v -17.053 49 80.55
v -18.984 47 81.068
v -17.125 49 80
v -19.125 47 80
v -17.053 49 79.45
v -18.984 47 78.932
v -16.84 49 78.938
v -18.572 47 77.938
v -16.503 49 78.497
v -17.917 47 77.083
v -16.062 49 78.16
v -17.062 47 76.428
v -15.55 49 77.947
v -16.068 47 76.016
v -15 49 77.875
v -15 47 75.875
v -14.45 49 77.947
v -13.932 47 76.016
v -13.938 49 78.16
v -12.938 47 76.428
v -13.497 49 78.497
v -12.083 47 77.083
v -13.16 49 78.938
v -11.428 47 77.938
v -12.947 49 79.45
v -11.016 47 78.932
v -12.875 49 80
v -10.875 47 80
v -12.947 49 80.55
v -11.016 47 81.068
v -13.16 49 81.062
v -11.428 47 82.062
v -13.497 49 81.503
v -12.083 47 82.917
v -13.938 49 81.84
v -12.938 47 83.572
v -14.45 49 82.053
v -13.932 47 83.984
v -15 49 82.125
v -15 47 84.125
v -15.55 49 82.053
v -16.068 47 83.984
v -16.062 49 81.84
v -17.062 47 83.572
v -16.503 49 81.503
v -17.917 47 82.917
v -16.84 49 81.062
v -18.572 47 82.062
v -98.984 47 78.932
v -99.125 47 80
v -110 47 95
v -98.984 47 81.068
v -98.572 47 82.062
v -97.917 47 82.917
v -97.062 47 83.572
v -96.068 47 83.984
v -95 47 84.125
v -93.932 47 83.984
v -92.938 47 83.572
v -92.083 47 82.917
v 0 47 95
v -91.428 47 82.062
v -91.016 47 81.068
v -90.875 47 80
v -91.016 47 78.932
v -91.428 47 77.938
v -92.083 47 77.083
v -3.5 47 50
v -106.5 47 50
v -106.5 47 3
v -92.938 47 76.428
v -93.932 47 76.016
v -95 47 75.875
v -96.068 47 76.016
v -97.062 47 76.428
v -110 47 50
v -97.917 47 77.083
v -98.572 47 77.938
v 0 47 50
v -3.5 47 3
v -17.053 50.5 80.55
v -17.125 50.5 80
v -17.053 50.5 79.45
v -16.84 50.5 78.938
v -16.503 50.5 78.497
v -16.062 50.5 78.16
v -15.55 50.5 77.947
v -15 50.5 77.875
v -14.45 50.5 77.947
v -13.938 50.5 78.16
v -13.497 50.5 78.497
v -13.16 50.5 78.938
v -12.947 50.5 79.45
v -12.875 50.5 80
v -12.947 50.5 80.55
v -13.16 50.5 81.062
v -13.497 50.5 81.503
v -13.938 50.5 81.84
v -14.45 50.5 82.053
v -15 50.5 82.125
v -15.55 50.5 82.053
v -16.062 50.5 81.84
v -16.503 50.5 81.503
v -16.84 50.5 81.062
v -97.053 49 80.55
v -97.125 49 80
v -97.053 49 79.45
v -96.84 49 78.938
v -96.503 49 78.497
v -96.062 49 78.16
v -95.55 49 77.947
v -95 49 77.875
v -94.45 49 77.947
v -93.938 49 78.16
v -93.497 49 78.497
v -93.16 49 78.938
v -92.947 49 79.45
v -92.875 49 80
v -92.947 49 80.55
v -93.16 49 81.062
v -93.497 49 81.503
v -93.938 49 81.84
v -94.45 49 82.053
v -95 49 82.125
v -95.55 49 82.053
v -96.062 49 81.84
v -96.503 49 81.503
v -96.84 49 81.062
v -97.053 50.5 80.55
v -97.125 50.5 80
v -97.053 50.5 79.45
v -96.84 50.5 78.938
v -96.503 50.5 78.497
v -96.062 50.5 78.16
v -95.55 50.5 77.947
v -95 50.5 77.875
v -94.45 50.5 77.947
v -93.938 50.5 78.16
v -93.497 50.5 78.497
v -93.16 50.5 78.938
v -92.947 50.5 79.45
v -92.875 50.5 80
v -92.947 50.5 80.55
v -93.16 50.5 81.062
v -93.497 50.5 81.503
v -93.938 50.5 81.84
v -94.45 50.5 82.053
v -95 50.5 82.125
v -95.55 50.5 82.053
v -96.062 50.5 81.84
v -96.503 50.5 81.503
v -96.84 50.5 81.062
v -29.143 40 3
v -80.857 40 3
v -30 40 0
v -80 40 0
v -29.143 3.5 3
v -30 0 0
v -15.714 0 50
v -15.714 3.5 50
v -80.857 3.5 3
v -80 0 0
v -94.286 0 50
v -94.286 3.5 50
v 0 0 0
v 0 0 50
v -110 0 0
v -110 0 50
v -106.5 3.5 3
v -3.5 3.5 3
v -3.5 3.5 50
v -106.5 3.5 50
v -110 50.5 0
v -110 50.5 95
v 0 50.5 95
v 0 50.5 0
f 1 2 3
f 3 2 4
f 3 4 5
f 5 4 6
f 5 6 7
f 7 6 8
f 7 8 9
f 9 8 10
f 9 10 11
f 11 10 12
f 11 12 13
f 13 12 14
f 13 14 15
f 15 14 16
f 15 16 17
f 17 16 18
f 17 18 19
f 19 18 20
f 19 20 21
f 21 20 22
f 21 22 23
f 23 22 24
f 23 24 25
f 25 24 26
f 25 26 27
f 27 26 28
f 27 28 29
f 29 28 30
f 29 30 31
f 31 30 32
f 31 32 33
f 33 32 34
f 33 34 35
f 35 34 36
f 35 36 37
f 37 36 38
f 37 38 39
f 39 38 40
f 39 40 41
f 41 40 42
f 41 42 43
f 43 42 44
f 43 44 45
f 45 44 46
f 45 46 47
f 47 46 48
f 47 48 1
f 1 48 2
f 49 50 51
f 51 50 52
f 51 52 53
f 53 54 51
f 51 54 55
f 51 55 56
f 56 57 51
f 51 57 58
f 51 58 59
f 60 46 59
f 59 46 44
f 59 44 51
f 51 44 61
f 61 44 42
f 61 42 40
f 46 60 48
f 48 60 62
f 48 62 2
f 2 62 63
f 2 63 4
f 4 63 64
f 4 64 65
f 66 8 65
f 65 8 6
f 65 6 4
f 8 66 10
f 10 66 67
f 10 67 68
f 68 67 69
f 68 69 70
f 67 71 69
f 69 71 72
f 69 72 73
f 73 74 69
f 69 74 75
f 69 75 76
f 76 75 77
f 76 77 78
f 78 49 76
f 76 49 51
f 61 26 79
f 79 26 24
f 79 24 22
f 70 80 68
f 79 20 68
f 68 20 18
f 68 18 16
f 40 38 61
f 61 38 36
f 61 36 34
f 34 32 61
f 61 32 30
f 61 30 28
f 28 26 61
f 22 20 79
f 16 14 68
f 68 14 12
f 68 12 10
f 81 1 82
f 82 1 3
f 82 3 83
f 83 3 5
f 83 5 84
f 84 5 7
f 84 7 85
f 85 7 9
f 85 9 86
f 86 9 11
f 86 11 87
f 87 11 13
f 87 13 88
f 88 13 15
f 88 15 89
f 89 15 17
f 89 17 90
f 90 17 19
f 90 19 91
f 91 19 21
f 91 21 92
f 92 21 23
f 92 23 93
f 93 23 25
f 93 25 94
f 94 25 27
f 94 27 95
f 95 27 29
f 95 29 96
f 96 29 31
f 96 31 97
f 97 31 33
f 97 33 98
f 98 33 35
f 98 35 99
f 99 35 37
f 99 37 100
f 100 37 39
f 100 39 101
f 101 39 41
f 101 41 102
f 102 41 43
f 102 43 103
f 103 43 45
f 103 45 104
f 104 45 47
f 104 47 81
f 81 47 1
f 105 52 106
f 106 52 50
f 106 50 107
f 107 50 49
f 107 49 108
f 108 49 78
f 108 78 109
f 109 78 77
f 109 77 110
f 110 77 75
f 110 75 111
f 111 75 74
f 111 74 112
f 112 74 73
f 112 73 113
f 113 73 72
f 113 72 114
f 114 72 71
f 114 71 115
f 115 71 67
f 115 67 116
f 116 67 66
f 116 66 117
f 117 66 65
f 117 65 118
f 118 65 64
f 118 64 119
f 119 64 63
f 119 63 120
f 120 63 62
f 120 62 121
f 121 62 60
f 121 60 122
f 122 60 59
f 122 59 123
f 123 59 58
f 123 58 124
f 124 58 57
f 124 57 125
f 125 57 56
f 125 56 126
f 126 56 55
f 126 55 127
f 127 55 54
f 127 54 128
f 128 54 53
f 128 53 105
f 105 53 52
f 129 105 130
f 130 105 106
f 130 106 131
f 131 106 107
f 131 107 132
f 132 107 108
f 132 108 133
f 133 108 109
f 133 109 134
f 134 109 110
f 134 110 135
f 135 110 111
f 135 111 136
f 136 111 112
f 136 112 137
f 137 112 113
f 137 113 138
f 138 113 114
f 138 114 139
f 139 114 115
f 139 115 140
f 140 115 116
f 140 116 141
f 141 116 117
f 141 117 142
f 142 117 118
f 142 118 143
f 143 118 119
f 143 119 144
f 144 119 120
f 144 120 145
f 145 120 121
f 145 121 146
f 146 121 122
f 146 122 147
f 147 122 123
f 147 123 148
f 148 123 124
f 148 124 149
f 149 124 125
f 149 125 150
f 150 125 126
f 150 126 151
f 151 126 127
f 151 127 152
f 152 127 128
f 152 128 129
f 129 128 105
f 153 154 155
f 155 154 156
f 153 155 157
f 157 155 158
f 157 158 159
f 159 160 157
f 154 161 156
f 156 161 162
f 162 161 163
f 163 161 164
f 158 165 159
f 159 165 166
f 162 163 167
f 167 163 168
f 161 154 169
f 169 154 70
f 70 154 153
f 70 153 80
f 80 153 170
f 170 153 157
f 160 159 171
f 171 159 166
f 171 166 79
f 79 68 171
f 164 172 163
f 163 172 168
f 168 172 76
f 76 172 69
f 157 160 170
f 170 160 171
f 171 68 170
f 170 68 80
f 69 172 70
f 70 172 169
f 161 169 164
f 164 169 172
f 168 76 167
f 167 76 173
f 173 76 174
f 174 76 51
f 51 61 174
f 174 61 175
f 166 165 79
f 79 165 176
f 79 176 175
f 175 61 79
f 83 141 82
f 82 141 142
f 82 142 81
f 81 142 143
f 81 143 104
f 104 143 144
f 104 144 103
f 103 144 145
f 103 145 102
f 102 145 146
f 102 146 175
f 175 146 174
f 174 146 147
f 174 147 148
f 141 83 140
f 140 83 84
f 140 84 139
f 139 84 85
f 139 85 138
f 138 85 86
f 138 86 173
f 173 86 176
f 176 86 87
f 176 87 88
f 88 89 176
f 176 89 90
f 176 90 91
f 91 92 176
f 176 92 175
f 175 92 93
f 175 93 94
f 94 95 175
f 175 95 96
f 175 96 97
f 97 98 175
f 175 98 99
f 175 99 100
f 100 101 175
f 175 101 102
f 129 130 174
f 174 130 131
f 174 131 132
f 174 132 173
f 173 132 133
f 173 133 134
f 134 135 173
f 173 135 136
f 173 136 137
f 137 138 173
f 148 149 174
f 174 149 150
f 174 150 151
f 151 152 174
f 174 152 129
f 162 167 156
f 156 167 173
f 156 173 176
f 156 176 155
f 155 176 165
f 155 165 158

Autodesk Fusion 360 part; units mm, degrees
sketch "Sketch1" plane through (0, 0, 0) normal (0, 0, 1) x (1, 0, 0) in component "BrickHolder"
  line L0 (0, 0) -> (-110, 0)
  line L1 (-110, 0) -> (-110, 51)
  line L2 (-110, 51) -> (0, 51)
  line L3 (0, 51) -> (0, 0)
  dimension "d1" = 110
  dimension "d2" = 51
extrude "Extrude1" add sketch "Sketch1" along normal blind 95 in component "BrickHolder"
sketch "Sketch2" plane through (-110, 0, 0) normal (-1, 0, 0) x (0, -1, 0) in component "BrickHolder"
  line L0 (-51, 0) -> (0, 0)
  line L1 (0, 0) -> (0, 95)
  line L2 (0, 95) -> (-51, 95)
  line L3 (-51, 95) -> (-51, 0)
  line L4 (0, 95) -> (-47, 95)
  line L5 (-47, 95) -> (-47, 35)
  line L6 (-47, 35) -> (0, 35)
  line L7 (0, 35) -> (0, 95)
  dimension "d5" = 47
  dimension "d6" = 60
extrude "Extrude2" cut sketch "Sketch2" against normal blind 140 contours L1 L2 L4 L5 L6 L7 in component "BrickHolder"
sketch "Sketch3" plane through (0, 0, 35) normal (0, 0, 1) x (-1, 0, 0) in component "BrickHolder"
  line L0 (0, 0) -> (0, -47)
  line L1 (0, -47) -> (110, -47)
  line L2 (110, -47) -> (110, 0)
  line L3 (110, 0) -> (0, 0)
  line L4 (0, -47) -> (3.5, -47) construction
  line L5 (110, -47) -> (106.5, -47) construction
  line L6 (0, 0) -> (3.5, 0) construction
  line L7 (3.5, 0) -> (3.5, -3.5) construction
  line L8 (3.5, -3.5) -> (0, -3.5) construction
  line L9 (0, -3.5) -> (0, 0) construction
  line L10 (110, 0) -> (106.5, 0) construction
  line L11 (106.5, 0) -> (106.5, -3.5) construction
  line L12 (106.5, -3.5) -> (110, -3.5) construction
  line L13 (110, -3.5) -> (110, 0) construction
  line L14 (106.5, -47) -> (3.5, -47)
  line L15 (3.5, -47) -> (3.5, -3.5)
  line L16 (3.5, -3.5) -> (106.5, -3.5)
  line L17 (106.5, -3.5) -> (106.5, -47)
  dimension "d9" = 3.5
  dimension "d10" = 3.5
  dimension "d11" = 3.5
  dimension "d12" = 3.5
  dimension "d13" = 3.5
  dimension "d14" = 3.5
extrude "Extrude3" cut sketch "Sketch3" against normal blind 32 contours L1 L14 L15 L16 L17 in component "BrickHolder"
sketch "Sketch4" plane through (0, 0, 0) normal (0, -1, 0) x (1, 0, 0) in component "BrickHolder"
  line L0 (0, 35) -> (-110, 35)
  line L1 (-110, 35) -> (-110, 0)
  line L2 (-110, 0) -> (0, 0)
  line L3 (0, 0) -> (0, 35)
  line L4 (0, 0) -> (-30, 0) construction
  line L5 (-110, 35) -> (-90, 35) construction
  line L6 (0, 35) -> (-20, 35) construction
  line L7 (-110, 0) -> (-80, 0) construction
  line L8 (-90, 35) -> (-80, 0)
  line L9 (-30, 0) -> (-20, 35)
  line L10 (-20, 35) -> (-90, 35)
  line L11 (-80, 0) -> (-30, 0)
  dimension "d17" = 30
  dimension "d18" = 20
  dimension "d19" = 20
  dimension "d20" = 30
extrude "Extrude4" cut sketch "Sketch4" against normal blind 40 contours L0 L2 L8 L9 L10 L11 in component "BrickHolder"
sketch "Sketch5" plane through (0, 47, 0) normal (0, -1, 0) x (1, 0, 0) in component "BrickHolder"
  line L0 (0, 35) -> (0, 95)
  line L1 (0, 95) -> (-110, 95)
  line L2 (-110, 95) -> (-110, 35)
  line L3 (-110, 35) -> (-106.5, 35)
  line L4 (-106.5, 35) -> (-106.5, 3)
  line L5 (-106.5, 3) -> (-3.5, 3)
  line L6 (-3.5, 3) -> (-3.5, 35)
  line L7 (-3.5, 35) -> (0, 35)
  line L8 (-110, 95) -> (-95, 95) construction
  line L9 (-95, 95) -> (-95, 80) construction
  line L10 (-95, 80) -> (-110, 80) construction
  line L11 (-110, 80) -> (-110, 95) construction
  line L12 (0, 95) -> (-15, 95) construction
  line L13 (-15, 95) -> (-15, 80) construction
  line L14 (-15, 80) -> (0, 80) construction
  line L15 (0, 80) -> (0, 95) construction
  circle A0 centre (-95, 80) radius 2.125
  circle A1 centre (-15, 80) radius 2.125
  dimension "d23" = 15
  dimension "d24" = 15
  dimension "d25" = 15
  dimension "d26" = 15
  dimension "d27" = 4.25
  dimension "d28" = 4.25
extrude "Extrude5" cut sketch "Sketch5" against normal blind 45 contours A0 | A1 in component "BrickHolder"
chamfer "Chamfer1" distance 2 angle 45 2 edges at (-96.9812, 47, 80.7684) (-16.9812, 47, 80.7684) in component "BrickHolder"
move_face "OffsetFaces1" offset 15 1 faces at (-1.1667, 16.8333, 35) in component "BrickHolder"
move_face "OffsetFaces2" offset 15 1 faces at (-108.8333, 16.8333, 35) in component "BrickHolder"
move_face "OffsetFaces3" offset -0.5 1 faces at (-67.8917, 51, 26.1129) in component "BrickHolder"
component "BrickHolder" placed x (1, 0, 0) y (0, 1, 0) z (0, 0, 1) at (0, 0, 0)
